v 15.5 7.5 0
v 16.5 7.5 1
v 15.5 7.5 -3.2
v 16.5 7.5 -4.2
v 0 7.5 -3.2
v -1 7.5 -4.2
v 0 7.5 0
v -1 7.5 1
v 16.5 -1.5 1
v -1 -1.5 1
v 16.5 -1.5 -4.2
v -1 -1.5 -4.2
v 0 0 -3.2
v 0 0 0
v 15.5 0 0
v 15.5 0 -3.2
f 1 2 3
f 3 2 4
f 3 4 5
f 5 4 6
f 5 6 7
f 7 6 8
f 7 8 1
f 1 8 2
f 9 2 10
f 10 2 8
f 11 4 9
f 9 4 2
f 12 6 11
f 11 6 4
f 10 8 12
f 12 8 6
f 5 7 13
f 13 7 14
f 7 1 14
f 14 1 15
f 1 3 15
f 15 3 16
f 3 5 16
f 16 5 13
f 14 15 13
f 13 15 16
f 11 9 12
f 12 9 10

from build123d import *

# Parameters (mm, degrees)
SKETCH1_W           = 17.5
SKETCH1_H           = 5.2
SKETCH1_W_2         = 15.5
SKETCH1_H_2         = 3.2
BOSS_EXTRUDE1_DEPTH = 7.5
SKETCH2_W           = 17.5
SKETCH2_H           = 5.2
BOSS_EXTRUDE2_DEPTH = 1.5


with BuildPart() as part:
    # Sketch1 → Boss-Extrude1 (new body)
    with BuildSketch(Plane(origin=(0, 0, 0), x_dir=(1, 0, 0), z_dir=(0, 1, 0))):
        with Locations((7.75, 1.6)):
            Rectangle(SKETCH1_W, SKETCH1_H)
        with Locations((7.75, 1.6)):
            Rectangle(SKETCH1_W_2, SKETCH1_H_2, mode=Mode.SUBTRACT)
    extrude(amount=BOSS_EXTRUDE1_DEPTH)

    # Sketch2 → Boss-Extrude2 (add)
    with BuildSketch(Plane.XZ):
        with Locations((7.75, -1.6)):
            Rectangle(SKETCH2_W, SKETCH2_H)
    extrude(amount=BOSS_EXTRUDE2_DEPTH)


solid = part.part
